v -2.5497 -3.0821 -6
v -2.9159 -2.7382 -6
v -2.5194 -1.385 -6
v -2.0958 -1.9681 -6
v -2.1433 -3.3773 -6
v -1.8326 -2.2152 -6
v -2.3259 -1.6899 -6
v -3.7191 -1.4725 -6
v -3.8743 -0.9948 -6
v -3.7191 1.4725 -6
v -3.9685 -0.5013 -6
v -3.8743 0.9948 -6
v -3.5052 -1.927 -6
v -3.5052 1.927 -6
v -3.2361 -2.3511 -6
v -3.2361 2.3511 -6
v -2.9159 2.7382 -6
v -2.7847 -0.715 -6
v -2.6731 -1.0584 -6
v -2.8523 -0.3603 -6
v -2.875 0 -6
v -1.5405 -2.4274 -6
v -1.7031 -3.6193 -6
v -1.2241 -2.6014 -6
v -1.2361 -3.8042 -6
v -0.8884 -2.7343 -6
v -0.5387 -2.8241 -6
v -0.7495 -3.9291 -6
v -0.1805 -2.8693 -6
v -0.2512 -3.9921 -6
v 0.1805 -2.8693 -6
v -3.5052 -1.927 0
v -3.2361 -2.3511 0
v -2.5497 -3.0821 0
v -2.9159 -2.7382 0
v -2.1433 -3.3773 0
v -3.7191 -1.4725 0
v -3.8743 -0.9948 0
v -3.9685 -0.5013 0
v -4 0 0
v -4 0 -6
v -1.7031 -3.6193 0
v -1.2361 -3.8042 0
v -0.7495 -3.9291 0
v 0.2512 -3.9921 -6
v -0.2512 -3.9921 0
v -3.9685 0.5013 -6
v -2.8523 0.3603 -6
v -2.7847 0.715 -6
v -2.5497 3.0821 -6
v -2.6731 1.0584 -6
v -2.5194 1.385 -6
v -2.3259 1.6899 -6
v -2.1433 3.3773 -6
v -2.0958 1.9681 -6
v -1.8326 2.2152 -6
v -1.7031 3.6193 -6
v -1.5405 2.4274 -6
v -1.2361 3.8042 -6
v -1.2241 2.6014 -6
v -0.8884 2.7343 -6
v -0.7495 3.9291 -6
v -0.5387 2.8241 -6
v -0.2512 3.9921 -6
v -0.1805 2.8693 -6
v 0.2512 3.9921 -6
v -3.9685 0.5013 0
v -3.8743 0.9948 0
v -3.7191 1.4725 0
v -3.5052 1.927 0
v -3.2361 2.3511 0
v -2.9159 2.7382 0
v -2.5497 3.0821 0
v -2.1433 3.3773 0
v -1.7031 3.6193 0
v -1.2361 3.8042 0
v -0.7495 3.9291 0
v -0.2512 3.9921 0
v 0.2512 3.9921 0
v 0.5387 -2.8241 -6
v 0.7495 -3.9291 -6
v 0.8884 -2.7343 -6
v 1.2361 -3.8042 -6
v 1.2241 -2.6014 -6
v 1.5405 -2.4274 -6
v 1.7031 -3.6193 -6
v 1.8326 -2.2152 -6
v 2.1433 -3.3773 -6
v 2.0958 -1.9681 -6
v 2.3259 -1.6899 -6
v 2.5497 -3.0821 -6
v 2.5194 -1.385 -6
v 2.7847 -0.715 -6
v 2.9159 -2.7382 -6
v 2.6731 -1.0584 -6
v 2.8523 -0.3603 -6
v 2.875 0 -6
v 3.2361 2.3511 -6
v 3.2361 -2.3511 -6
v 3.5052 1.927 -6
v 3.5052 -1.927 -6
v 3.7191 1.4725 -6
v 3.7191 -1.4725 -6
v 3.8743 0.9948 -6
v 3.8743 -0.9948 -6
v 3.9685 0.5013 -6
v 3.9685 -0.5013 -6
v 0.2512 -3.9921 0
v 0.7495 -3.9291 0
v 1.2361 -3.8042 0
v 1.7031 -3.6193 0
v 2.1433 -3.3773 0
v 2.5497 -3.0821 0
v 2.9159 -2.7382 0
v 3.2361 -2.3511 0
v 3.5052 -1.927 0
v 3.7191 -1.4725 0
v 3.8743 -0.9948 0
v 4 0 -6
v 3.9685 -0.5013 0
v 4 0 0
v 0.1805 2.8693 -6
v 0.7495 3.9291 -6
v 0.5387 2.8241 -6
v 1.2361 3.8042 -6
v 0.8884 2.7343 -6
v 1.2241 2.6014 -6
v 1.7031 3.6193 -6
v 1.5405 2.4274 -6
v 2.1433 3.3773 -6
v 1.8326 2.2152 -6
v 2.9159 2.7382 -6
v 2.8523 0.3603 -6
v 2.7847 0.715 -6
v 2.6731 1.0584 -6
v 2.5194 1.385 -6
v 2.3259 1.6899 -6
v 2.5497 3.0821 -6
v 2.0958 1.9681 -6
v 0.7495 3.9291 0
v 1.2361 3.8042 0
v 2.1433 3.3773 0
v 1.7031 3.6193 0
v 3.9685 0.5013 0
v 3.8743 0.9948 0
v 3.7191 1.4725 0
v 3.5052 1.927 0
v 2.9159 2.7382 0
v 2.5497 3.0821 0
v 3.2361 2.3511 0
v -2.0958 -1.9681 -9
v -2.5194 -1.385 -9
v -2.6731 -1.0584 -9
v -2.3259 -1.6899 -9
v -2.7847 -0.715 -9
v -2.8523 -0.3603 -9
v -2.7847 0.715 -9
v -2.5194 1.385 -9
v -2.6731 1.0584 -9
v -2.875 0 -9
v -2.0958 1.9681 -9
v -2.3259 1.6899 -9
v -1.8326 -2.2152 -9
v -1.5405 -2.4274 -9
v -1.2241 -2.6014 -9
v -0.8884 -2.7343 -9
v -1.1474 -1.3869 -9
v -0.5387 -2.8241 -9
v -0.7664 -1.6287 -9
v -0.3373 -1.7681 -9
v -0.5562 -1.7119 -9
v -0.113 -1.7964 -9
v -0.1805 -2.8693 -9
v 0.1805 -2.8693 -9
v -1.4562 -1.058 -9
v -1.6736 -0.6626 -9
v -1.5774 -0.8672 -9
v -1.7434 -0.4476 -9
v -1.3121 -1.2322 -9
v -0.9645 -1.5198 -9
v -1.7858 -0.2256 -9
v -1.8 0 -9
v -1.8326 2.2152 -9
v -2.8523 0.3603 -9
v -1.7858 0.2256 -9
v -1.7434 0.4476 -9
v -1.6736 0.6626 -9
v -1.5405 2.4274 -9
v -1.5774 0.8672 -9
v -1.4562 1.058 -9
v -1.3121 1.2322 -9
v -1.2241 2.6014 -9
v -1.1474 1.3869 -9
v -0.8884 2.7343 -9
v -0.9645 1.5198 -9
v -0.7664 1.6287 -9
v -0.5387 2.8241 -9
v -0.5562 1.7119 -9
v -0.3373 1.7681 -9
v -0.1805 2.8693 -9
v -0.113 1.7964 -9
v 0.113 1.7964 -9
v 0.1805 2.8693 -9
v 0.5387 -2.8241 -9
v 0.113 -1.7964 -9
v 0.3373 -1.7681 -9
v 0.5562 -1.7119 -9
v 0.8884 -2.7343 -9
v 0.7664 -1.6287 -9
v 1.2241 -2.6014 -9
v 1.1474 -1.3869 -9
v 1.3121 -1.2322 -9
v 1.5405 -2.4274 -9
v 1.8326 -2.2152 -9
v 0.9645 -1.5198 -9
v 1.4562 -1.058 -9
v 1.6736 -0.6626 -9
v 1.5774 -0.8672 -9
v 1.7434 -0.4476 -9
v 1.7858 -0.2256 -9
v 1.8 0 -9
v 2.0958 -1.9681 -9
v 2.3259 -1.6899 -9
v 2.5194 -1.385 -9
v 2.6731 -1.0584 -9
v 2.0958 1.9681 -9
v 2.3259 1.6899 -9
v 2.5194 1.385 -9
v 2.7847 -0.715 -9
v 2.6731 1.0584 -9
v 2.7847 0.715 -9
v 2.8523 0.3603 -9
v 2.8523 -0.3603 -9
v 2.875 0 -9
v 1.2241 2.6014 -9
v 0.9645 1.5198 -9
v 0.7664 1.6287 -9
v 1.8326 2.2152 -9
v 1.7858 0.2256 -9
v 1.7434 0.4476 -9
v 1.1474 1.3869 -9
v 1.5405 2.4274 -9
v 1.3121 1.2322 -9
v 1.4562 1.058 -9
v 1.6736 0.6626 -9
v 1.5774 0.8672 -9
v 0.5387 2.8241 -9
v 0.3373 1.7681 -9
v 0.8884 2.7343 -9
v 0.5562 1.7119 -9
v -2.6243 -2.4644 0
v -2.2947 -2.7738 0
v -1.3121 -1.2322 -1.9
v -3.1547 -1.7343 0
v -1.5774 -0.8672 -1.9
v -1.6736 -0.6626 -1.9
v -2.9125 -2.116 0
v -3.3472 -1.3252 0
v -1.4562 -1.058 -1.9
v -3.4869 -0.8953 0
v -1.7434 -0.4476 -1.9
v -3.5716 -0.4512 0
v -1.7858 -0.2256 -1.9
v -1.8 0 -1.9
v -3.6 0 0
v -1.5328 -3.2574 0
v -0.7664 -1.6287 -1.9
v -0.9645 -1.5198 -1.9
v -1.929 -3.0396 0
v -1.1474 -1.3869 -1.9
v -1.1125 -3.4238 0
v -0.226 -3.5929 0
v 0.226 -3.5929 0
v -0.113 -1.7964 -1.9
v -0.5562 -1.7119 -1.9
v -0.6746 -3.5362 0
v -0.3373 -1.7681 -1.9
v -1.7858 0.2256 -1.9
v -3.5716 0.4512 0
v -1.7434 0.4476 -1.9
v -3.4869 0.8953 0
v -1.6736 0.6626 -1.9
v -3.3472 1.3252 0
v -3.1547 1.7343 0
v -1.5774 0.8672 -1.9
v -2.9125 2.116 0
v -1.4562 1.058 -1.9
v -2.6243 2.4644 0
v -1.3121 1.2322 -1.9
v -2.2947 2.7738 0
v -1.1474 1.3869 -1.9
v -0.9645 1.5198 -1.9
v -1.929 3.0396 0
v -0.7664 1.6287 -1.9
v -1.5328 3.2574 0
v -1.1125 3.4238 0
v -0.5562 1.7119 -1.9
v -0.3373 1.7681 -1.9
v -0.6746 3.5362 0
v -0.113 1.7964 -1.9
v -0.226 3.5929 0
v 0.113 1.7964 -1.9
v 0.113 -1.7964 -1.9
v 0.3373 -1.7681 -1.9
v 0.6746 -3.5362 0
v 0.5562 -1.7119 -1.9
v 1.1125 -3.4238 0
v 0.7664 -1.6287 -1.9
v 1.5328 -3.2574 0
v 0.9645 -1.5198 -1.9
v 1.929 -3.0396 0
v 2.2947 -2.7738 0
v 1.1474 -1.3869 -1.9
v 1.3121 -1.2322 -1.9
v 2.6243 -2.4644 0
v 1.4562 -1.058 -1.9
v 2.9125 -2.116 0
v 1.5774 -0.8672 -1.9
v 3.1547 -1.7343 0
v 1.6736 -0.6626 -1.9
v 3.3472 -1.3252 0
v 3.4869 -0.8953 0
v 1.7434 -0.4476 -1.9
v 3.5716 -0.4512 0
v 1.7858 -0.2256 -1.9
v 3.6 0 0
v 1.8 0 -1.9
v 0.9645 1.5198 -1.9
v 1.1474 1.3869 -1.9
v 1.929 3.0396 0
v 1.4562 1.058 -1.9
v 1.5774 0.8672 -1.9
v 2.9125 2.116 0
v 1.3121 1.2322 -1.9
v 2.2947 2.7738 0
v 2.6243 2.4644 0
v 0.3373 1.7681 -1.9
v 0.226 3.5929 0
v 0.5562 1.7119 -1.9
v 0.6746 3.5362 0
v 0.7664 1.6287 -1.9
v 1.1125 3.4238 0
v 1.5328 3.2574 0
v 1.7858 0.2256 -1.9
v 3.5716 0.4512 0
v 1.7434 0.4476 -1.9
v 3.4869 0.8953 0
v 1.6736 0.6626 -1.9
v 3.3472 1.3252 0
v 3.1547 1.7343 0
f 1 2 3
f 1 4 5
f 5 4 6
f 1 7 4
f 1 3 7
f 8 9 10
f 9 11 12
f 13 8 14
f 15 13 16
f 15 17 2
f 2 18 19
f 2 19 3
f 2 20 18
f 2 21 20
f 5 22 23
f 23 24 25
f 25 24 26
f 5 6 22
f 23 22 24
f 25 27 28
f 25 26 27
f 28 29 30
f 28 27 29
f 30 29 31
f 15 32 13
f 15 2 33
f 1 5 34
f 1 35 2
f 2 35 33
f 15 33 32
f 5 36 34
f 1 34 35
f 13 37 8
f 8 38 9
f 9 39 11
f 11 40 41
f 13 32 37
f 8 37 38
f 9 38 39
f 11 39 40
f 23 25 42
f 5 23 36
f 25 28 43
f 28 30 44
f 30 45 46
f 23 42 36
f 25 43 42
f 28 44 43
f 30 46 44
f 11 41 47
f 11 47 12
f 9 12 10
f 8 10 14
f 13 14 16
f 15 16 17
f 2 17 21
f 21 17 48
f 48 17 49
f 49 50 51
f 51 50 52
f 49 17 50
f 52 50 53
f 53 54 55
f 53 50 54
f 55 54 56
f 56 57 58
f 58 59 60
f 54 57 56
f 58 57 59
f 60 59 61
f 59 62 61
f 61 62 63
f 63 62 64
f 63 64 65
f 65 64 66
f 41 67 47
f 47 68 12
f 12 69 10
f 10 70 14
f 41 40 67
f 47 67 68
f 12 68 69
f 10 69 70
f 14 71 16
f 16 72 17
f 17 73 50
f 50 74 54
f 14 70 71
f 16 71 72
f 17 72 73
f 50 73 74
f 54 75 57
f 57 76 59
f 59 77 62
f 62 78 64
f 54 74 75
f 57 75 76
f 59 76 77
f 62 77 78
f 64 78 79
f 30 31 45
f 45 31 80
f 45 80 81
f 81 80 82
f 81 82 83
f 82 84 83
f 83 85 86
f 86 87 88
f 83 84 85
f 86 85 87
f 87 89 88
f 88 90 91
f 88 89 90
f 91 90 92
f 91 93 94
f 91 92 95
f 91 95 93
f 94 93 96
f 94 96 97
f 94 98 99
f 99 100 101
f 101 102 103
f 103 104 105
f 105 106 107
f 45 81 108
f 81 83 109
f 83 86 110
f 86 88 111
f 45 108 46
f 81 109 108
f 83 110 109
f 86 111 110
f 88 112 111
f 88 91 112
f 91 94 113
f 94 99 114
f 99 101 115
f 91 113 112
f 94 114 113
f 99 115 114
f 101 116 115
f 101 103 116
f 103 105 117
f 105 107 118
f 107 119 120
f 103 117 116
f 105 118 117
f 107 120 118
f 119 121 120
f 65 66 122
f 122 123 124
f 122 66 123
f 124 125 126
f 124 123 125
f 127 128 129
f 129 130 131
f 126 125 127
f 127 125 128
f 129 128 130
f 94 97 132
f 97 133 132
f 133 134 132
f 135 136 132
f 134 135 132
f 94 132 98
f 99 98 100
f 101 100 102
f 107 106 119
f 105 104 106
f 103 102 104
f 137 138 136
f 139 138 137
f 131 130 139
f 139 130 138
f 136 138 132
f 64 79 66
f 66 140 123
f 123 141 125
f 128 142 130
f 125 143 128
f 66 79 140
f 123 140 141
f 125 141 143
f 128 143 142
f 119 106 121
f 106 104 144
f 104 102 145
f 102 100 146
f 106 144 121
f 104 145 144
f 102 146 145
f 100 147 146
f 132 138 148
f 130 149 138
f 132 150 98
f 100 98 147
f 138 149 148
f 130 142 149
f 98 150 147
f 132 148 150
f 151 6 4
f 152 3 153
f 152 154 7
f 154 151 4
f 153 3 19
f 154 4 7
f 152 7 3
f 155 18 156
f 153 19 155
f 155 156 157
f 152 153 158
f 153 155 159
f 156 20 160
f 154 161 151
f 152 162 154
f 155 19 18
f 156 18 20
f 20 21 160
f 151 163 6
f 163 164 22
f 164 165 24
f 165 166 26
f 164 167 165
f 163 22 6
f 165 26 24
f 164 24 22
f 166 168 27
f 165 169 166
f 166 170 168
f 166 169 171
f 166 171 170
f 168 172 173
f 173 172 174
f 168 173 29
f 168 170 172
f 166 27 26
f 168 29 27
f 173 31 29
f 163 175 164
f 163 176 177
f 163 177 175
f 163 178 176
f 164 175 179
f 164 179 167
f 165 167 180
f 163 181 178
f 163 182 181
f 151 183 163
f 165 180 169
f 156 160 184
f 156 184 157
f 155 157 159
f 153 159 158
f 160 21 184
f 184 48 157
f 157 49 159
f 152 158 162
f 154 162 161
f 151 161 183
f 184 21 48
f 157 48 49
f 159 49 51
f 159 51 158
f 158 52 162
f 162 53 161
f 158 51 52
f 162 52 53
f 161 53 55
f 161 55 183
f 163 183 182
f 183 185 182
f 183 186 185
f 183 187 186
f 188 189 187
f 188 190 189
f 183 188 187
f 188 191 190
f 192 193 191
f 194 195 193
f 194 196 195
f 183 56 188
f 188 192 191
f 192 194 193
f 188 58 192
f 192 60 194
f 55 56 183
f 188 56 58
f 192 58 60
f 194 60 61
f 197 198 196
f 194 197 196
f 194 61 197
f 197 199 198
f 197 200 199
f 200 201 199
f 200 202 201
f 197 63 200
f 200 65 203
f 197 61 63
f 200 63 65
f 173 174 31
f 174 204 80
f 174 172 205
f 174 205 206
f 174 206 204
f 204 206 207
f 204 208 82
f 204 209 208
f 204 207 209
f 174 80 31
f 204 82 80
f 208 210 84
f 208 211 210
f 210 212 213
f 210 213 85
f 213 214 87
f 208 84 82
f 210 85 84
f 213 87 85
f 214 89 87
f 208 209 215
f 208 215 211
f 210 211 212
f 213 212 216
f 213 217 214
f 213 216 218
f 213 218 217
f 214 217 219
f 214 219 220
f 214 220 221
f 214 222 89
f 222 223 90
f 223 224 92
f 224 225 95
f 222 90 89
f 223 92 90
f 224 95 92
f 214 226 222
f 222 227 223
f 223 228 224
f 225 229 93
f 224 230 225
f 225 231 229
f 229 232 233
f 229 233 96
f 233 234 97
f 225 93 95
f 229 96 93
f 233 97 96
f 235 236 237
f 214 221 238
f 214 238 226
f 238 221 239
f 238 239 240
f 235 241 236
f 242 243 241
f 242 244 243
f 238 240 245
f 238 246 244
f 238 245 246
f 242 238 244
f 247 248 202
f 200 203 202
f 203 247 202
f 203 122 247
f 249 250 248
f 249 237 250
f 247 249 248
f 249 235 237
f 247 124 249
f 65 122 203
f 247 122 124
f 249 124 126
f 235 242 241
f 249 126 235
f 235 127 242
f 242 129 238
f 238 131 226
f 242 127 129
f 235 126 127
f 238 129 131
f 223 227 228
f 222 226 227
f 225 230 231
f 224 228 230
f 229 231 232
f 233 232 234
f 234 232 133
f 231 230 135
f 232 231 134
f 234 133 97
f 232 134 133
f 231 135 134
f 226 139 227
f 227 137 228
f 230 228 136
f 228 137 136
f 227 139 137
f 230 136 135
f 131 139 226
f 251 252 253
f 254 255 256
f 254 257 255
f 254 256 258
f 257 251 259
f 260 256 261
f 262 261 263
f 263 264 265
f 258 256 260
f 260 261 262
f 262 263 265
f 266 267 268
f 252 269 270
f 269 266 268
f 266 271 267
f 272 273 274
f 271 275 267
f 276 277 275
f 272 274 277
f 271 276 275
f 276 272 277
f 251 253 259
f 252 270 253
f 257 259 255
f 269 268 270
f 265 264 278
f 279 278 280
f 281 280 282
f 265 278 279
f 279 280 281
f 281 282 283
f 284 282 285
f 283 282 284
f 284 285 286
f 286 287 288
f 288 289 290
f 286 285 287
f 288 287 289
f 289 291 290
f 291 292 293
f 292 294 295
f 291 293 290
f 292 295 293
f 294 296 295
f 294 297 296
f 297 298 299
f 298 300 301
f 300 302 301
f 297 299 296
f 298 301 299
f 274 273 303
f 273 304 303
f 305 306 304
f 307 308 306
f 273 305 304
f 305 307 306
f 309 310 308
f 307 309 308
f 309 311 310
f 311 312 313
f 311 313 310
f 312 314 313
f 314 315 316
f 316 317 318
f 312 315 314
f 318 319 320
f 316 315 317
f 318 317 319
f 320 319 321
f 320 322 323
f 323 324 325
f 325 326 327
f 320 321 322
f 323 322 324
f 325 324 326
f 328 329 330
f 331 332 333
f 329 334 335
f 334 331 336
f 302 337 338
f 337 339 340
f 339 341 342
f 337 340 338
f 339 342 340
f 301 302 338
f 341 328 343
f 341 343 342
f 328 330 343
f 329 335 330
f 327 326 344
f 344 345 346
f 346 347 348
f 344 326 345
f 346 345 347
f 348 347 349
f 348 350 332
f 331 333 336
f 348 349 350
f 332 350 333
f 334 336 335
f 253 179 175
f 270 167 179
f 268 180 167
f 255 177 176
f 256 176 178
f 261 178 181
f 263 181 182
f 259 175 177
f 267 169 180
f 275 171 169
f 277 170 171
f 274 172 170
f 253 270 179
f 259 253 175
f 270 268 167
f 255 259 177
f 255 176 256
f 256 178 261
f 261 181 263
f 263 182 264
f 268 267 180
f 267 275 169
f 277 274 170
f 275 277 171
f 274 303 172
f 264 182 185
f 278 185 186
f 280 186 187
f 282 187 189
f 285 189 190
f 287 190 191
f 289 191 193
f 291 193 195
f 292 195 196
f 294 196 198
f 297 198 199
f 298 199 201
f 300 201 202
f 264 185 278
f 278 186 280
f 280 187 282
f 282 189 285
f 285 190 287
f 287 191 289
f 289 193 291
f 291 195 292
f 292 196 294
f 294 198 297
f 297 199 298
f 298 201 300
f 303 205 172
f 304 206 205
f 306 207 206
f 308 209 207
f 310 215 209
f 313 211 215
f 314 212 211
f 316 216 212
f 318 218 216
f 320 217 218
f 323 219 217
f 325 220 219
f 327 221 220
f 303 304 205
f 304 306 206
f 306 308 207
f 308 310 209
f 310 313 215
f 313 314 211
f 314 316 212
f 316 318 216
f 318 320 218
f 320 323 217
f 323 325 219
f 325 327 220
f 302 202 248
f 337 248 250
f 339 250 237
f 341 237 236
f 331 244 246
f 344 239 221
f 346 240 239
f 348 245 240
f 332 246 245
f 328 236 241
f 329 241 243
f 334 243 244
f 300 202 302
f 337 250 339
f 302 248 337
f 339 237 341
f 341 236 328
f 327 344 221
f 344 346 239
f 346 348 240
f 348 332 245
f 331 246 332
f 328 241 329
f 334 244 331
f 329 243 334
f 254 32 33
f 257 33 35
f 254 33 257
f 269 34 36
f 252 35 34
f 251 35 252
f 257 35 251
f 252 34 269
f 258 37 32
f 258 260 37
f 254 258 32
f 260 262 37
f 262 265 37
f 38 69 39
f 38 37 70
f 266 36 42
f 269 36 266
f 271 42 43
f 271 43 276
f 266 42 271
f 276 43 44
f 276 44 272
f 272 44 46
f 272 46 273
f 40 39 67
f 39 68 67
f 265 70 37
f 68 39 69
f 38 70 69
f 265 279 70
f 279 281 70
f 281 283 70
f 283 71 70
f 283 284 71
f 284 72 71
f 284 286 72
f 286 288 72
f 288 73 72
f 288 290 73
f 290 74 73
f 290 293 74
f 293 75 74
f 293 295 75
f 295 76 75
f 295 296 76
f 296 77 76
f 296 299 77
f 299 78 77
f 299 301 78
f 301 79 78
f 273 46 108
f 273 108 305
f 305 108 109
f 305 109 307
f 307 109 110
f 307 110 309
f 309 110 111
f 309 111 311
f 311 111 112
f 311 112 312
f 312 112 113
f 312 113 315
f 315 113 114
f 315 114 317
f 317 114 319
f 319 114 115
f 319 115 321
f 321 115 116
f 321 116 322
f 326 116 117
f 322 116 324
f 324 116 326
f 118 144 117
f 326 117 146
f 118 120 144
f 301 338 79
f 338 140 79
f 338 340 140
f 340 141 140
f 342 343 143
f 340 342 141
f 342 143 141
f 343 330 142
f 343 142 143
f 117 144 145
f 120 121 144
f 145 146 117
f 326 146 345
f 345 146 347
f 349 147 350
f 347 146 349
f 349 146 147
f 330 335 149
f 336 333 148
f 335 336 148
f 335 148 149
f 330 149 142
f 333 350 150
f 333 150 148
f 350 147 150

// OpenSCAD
$fn = 50;

difference() {
	union() {
		translate(v = [0, 0, -6.0]) {
			cylinder(h = 9, r = 4.0);
		}
		#translate(v = [0, 0, -9.0]) {
			cylinder(h = 9, r = 2.875);
		}
	}
	union() {
		translate(v = [0, 0, 0]) {
			rotate(a = [0, 0, 0]) {
				difference() {
					union() {
						translate(v = [0, 0, -9.0]) {
							cylinder(h = 9, r = 1.5);
						}
						translate(v = [0, 0, -1.9]) {
							cylinder(h = 1.9, r1 = 1.8, r2 = 3.6);
						}
						translate(v = [0, 0, -9.0]) {
							cylinder(h = 9, r = 1.8);
						}
						translate(v = [0, 0, -9.0]) {
							cylinder(h = 9, r = 1.5);
						}
					}
					union();
				}
			}
		}
		#cylinder(h = 3, r = 5.0);
	}
}
